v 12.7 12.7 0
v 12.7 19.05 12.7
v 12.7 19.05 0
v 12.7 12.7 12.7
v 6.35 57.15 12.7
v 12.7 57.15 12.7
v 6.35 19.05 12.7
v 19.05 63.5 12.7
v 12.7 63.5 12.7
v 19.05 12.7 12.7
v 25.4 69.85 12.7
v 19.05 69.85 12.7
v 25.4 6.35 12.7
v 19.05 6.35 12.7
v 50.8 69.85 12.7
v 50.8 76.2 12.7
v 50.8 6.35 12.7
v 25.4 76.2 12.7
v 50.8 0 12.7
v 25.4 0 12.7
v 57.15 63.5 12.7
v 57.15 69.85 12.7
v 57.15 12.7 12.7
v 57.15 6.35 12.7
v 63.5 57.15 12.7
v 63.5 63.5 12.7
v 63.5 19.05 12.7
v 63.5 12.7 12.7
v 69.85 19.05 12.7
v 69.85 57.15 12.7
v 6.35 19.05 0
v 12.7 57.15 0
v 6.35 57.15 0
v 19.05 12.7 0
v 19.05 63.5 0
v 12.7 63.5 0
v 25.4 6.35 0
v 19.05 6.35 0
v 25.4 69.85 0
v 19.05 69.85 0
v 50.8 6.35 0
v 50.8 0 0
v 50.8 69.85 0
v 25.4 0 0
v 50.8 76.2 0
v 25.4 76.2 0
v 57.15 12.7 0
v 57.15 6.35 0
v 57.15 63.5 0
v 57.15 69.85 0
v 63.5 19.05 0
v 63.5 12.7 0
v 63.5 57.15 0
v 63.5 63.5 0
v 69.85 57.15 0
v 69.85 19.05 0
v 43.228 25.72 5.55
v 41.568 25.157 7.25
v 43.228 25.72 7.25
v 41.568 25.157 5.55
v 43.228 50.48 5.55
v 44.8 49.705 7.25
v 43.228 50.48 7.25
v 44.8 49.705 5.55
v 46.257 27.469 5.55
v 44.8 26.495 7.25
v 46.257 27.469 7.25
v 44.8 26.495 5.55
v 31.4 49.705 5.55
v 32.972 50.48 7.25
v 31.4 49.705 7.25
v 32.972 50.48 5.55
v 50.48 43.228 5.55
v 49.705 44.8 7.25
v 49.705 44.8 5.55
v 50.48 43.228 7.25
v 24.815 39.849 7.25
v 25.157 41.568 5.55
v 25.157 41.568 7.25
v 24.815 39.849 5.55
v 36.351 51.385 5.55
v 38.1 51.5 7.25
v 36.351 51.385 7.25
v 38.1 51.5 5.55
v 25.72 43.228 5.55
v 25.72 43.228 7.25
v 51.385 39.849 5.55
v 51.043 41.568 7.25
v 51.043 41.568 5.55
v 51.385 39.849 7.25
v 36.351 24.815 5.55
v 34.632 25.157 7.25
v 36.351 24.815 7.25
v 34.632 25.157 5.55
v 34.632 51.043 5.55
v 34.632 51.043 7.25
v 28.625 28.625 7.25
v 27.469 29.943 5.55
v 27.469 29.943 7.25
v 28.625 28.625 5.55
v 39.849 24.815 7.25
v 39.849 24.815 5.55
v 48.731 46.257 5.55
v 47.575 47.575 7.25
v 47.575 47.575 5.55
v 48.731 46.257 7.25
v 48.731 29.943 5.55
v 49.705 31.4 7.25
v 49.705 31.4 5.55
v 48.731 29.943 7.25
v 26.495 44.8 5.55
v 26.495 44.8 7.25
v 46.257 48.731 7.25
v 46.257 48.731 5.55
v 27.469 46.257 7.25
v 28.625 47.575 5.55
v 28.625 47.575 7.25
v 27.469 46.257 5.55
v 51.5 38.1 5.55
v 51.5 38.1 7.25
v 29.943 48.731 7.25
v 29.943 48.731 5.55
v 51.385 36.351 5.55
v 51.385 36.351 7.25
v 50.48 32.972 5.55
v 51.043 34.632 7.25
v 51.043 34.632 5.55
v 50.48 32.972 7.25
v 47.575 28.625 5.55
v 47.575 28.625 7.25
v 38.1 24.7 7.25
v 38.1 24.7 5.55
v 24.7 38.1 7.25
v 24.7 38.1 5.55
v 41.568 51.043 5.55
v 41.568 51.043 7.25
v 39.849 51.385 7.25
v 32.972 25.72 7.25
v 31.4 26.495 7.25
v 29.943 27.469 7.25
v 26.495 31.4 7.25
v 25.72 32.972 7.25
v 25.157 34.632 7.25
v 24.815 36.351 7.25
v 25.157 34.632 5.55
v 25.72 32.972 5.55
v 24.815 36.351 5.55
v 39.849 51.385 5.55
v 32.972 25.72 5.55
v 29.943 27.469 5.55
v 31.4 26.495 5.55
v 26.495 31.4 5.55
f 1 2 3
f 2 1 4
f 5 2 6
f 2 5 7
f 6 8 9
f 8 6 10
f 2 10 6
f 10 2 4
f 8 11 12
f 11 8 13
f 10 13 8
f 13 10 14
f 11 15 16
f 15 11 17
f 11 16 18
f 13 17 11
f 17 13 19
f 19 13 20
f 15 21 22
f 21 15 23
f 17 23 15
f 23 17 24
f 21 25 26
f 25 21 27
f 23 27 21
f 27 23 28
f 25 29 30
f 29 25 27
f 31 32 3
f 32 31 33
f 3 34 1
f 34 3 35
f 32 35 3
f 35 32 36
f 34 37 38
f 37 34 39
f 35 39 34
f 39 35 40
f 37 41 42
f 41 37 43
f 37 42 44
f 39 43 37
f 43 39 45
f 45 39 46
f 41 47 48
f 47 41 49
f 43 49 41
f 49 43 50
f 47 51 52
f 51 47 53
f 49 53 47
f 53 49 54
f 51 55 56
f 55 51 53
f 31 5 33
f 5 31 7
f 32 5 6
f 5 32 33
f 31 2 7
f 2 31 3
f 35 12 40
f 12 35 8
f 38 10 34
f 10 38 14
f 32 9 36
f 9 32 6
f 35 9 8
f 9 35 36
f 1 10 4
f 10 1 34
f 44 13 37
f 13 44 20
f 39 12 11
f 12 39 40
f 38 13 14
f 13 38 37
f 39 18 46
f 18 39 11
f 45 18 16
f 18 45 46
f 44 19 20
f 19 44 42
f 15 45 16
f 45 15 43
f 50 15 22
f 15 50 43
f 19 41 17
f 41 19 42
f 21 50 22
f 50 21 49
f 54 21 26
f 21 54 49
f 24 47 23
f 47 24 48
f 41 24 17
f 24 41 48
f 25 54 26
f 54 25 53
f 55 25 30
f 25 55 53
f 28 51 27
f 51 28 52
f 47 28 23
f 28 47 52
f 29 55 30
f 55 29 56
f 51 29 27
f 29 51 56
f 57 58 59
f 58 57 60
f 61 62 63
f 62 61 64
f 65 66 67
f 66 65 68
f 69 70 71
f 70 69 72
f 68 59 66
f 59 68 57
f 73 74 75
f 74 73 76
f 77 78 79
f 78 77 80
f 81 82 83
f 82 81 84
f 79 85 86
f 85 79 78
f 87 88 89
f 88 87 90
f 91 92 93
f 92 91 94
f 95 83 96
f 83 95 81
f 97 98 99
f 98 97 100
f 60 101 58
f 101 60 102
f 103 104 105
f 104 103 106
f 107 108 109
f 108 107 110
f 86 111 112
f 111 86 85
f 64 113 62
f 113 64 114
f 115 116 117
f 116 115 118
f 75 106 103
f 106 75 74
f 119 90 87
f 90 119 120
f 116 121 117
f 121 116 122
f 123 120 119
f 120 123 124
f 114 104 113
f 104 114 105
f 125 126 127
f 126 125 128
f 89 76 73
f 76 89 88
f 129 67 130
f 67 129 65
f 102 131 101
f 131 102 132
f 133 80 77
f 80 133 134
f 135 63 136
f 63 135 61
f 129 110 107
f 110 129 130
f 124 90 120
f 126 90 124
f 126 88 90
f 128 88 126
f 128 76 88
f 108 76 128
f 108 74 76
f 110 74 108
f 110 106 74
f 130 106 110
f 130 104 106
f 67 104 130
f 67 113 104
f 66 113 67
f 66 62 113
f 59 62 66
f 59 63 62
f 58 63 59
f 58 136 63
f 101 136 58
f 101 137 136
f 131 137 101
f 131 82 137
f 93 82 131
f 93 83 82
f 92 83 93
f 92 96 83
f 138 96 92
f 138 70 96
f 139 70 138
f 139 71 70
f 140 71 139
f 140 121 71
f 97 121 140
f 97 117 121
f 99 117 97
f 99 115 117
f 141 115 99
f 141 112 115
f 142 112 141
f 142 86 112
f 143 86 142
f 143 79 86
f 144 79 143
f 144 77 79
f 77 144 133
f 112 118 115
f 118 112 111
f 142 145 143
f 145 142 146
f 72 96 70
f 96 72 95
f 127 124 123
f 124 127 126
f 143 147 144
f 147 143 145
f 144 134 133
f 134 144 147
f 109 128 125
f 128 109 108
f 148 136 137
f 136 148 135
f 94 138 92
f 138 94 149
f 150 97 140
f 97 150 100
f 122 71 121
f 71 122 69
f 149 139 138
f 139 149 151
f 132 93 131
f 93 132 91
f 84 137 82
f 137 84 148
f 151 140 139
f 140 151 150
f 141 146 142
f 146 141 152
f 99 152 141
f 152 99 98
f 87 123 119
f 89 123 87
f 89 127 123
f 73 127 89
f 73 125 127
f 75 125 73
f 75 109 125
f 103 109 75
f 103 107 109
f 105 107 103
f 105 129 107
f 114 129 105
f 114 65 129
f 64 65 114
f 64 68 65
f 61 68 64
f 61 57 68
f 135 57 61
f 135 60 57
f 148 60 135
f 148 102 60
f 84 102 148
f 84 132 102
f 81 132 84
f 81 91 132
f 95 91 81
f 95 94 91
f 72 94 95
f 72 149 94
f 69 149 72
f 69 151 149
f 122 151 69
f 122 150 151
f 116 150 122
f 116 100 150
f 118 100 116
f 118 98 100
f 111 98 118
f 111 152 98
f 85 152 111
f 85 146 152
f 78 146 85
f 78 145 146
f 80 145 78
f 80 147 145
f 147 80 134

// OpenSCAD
// emerald — Minecraft Item Shape 3D Model
// Auto-generated from minecraft/textures/item/emerald.png
//
// Open in OpenSCAD → F5 preview → F6 render → F7 export STL

// ============================================================
// PARAMETERS
// ============================================================

GRID_SIZE_IN    = 3.0;           // crafting table slot size
PIXELS          = 12;              // grid divisions (shape-fitted)
PIXEL_MM        = (GRID_SIZE_IN * 25.4) / PIXELS;  // mm per pixel

DEPTH_IN        = 0.5;          // extrusion depth in inches
DEPTH_MM        = DEPTH_IN * 25.4;

// NFC tag (NTAG215 25mm coin)
TAG_DIAMETER    = 26;           // mm — slightly oversized for easy drop-in
TAG_THICKNESS   = 1.2;         // mm
TAG_CLEARANCE   = 0.4;         // mm extra around tag

cavity_d = TAG_DIAMETER + TAG_CLEARANCE * 2;
cavity_h = TAG_THICKNESS + TAG_CLEARANCE;

echo(str("Tag cavity: ", cavity_d, "mm dia × ", cavity_h, "mm deep"));
echo(str("PAUSE AT: ", DEPTH_MM / 2 + cavity_h / 2, "mm to insert tag"));

module tag_cavity() {
    cx = (5.5 + 0.5) * PIXEL_MM;
    cy = (PIXELS - 1 - 5.5 + 0.5) * PIXEL_MM;
    translate([cx, cy, DEPTH_MM / 2 - cavity_h / 2])
        cylinder(d = cavity_d, h = cavity_h + 0.1, $fn = 48);
}

module tag_shelf() {
    cx = (5.5 + 0.5) * PIXEL_MM;
    cy = (PIXELS - 1 - 5.5 + 0.5) * PIXEL_MM;
    translate([cx, cy, DEPTH_MM / 2 - cavity_h / 2 - 1.0])
        cylinder(d = cavity_d + 4, h = 1.0, $fn = 48);
}

echo(str("Pixel size: ", PIXEL_MM, "mm"));
echo(str("Footprint: ", PIXELS * PIXEL_MM, "mm = ", GRID_SIZE_IN, " in"));
echo(str("Depth: ", DEPTH_MM, "mm = ", DEPTH_IN, " in"));

// ============================================================
// PIXEL MAP — 96 opaque pixels
// ============================================================

item_pixels = [
    [1.0,3.0], [1.0,4.0], [1.0,5.0], [1.0,6.0], [1.0,7.0], [1.0,8.0], [2.0,2.0], [2.0,3.0],
    [2.0,4.0], [2.0,5.0], [2.0,6.0], [2.0,7.0], [2.0,8.0], [2.0,9.0], [3.0,1.0], [3.0,2.0],
    [3.0,3.0], [3.0,4.0], [3.0,5.0], [3.0,6.0], [3.0,7.0], [3.0,8.0], [3.0,9.0], [3.0,10.0],
    [4.0,0.0], [4.0,1.0], [4.0,2.0], [4.0,3.0], [4.0,4.0], [4.0,5.0], [4.0,6.0], [4.0,7.0],
    [4.0,8.0], [4.0,9.0], [4.0,10.0], [4.0,11.0], [5.0,0.0], [5.0,1.0], [5.0,2.0], [5.0,3.0],
    [5.0,4.0], [5.0,5.0], [5.0,6.0], [5.0,7.0], [5.0,8.0], [5.0,9.0], [5.0,10.0], [5.0,11.0],
    [6.0,0.0], [6.0,1.0], [6.0,2.0], [6.0,3.0], [6.0,4.0], [6.0,5.0], [6.0,6.0], [6.0,7.0],
    [6.0,8.0], [6.0,9.0], [6.0,10.0], [6.0,11.0], [7.0,0.0], [7.0,1.0], [7.0,2.0], [7.0,3.0],
    [7.0,4.0], [7.0,5.0], [7.0,6.0], [7.0,7.0], [7.0,8.0], [7.0,9.0], [7.0,10.0], [7.0,11.0],
    [8.0,1.0], [8.0,2.0], [8.0,3.0], [8.0,4.0], [8.0,5.0], [8.0,6.0], [8.0,7.0], [8.0,8.0],
    [8.0,9.0], [8.0,10.0], [9.0,2.0], [9.0,3.0], [9.0,4.0], [9.0,5.0], [9.0,6.0], [9.0,7.0],
    [9.0,8.0], [9.0,9.0], [10.0,3.0], [10.0,4.0], [10.0,5.0], [10.0,6.0], [10.0,7.0], [10.0,8.0]
];

// ============================================================
// MODULES
// ============================================================

module pixel_block(col, row) {
    translate([col * PIXEL_MM, (PIXELS - 1 - row) * PIXEL_MM, 0])
        cube([PIXEL_MM, PIXEL_MM, DEPTH_MM]);
}

module item_shape() {
    for (i = [0 : len(item_pixels) - 1])
        pixel_block(item_pixels[i][0], item_pixels[i][1]);
}

module item_final() {
    difference() {
        union() {
            item_shape();
            intersection() {
                item_shape();
                tag_shelf();
            }
        }
        tag_cavity();
    }
}

item_final();

// Cross-section view (uncomment to see tag cavity):
// difference() {
//     item_final();
//     translate([8 * PIXEL_MM + 50, 0, 0])
//         cube([100, 200, 100]);
// }
